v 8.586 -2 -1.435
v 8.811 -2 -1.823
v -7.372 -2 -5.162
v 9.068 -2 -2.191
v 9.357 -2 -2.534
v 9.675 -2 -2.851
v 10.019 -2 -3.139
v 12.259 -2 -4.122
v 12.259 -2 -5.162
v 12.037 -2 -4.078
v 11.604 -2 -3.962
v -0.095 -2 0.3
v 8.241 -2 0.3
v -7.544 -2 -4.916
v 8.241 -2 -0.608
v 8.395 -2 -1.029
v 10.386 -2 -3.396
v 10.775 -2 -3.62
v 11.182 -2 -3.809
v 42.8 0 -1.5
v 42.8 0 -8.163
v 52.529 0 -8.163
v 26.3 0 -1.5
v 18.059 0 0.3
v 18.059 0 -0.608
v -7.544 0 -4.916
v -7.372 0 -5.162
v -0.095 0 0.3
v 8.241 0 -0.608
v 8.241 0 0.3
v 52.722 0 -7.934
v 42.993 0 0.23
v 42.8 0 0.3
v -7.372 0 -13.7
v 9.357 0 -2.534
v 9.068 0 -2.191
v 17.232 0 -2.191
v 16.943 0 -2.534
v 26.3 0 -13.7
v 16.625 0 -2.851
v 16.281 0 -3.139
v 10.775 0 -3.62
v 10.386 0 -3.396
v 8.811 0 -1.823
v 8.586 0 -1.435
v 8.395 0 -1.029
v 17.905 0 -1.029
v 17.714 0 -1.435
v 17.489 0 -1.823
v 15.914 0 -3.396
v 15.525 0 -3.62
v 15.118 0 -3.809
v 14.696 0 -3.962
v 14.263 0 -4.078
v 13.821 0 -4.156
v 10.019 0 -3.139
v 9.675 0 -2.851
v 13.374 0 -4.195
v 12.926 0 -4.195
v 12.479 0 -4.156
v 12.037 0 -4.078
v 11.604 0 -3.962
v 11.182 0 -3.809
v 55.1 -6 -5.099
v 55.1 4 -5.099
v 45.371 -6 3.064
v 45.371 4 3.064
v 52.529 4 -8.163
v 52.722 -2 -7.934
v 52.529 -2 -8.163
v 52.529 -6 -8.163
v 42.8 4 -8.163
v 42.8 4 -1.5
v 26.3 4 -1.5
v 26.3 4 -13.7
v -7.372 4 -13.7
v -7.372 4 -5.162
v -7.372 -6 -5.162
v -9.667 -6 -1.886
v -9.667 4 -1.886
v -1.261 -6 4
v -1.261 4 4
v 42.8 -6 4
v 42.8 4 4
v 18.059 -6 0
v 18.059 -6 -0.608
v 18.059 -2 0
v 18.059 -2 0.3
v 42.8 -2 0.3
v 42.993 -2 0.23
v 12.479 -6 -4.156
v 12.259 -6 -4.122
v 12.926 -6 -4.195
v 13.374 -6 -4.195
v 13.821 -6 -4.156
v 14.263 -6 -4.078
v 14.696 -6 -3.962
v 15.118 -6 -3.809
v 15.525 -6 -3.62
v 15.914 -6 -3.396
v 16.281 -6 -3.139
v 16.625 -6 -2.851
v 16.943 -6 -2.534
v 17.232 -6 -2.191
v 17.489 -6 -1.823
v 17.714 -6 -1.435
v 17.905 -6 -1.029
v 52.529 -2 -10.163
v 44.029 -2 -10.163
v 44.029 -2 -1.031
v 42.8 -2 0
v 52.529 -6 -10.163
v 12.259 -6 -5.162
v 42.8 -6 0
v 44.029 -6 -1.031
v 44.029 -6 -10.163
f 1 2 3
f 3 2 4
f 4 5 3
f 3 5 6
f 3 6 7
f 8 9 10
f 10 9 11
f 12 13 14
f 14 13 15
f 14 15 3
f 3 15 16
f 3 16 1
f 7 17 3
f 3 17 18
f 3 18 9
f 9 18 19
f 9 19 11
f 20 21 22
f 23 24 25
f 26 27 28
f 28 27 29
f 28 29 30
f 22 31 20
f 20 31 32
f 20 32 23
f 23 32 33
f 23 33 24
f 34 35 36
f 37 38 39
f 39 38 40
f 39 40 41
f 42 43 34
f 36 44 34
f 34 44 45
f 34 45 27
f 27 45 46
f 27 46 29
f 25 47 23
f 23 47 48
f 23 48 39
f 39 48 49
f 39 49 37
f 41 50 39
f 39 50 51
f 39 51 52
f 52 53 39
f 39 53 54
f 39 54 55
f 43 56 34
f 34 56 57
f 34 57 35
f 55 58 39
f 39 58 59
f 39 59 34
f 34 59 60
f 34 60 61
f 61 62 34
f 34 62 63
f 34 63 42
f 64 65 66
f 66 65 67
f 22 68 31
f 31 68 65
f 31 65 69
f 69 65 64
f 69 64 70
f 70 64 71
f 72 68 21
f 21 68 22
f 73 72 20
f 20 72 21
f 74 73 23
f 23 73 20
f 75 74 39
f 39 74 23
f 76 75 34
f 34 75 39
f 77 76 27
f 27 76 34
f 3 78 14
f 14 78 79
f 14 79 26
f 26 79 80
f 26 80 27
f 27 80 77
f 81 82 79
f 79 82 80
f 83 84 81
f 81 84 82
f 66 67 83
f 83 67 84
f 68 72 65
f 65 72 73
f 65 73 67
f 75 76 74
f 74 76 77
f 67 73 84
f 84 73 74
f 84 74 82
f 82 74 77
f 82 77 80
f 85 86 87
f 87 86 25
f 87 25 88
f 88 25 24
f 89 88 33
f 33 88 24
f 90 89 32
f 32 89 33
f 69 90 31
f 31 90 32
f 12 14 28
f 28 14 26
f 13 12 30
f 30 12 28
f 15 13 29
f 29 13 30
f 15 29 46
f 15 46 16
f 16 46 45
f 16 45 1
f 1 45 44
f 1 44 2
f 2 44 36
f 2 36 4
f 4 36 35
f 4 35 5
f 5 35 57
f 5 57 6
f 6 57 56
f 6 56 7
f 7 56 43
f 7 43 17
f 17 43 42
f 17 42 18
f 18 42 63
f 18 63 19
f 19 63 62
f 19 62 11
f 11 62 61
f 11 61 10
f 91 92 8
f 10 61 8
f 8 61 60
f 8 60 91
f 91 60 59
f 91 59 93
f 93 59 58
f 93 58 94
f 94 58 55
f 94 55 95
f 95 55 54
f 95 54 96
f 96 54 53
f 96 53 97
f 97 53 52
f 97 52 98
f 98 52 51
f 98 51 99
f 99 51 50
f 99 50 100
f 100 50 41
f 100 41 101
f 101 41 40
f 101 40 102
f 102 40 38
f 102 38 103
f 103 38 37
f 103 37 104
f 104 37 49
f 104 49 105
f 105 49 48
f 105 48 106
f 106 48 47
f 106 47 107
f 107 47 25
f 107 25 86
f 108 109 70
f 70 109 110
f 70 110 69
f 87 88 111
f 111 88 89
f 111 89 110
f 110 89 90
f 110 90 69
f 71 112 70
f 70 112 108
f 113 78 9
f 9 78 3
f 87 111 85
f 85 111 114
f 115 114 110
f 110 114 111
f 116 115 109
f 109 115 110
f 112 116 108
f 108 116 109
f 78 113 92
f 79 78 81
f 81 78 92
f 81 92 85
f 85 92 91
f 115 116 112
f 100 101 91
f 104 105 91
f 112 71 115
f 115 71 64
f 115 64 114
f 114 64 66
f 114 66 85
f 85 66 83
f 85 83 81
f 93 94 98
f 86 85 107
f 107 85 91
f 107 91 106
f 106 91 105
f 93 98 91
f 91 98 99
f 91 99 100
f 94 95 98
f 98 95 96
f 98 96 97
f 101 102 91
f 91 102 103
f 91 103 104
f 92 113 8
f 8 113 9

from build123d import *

# Parameters (mm, degrees)
BOSS_EXTRUDE1_DEPTH = 4
BOSS_EXTRUDE3_DEPTH = 2
BOSS_EXTRUDE4_DEPTH = 4
CUT_EXTRUDE1_DEPTH  = 4
BOSS_EXTRUDE6_START = -4
BOSS_EXTRUDE6_DEPTH = 4


with BuildPart() as part:
    # Sketch2 → Boss-Extrude1 (new body)
    with BuildSketch(Plane(origin=(0, 0, 0), x_dir=(1, 0, 0), z_dir=(0, 1, 0))):
        Polygon((-7.372368399, 13.7), (-7.372368399, 5.162187927), (-9.666674144, 1.88557975), (-1.261195156, -4), (42.8, -4), (45.371150439, -3.064177772), (55.099914866, 5.099224871), (52.528764428, 8.163402643), (42.8, 8.163402643), (42.8, 1.5), (26.3, 1.5), (26.3, 13.7), align=None)
    extrude(amount=BOSS_EXTRUDE1_DEPTH)

    # Sketch2<4> → Boss-Extrude3 (add)
    with BuildSketch(Plane(origin=(0, 0, 0), x_dir=(1, 0, 0), z_dir=(0, 1, 0))):
        with BuildLine():
            Line((-0.094589637, -0.3), (-7.54444133, 4.916442314))
            Line((-7.54444133, 4.916442314), (-9.666674144, 1.88557975))
            Line((-9.666674144, 1.88557975), (-1.261195156, -4))
            Line((-1.261195156, -4), (42.8, -4))
            Line((42.8, -4), (45.371150439, -3.064177772))
            Line((45.371150439, -3.064177772), (55.099914866, 5.099224871))
            Line((55.099914866, 5.099224871), (52.721600711, 7.93358931))
            Line((52.721600711, 7.93358931), (42.992836283, -0.229813333))
            Line((42.992836283, -0.229813333), (42.8, -0.3))
            Line((42.8, -0.3), (18.05881591, -0.3))
            Line((18.05881591, -0.3), (18.05881591, 0.607570661))
            ThreePointArc((18.05881591, 0.607570661), (13.15, 4.2), (8.24118409, 0.607570661))
            Line((8.24118409, 0.607570661), (8.24118409, -0.3))
            Line((8.24118409, -0.3), (-0.094589637, -0.3))
        make_face()
    extrude(amount=-BOSS_EXTRUDE3_DEPTH)

    # Sketch3 → Boss-Extrude4 (add)
    with BuildSketch(Plane(origin=(0, -2, 0), x_dir=(-1, 0, 0), z_dir=(0, -1, 0))):
        Polygon((-42.8, 0), (-44.028764428, 1.031055778), (-44.028764428, 10.163402643), (-52.528764428, 10.163402643), (-52.528764428, 8.163402643), (-55.099914866, 5.099224871), (-45.371150439, -3.064177772), (-42.8, -4), (1.261195156, -4), (9.666674144, 1.88557975), (7.372368399, 5.162187927), (-18.25881591, 5.162187927), (-18.25881591, 0), align=None)
    extrude(amount=BOSS_EXTRUDE4_DEPTH)

    # Sketch4 → Cut-Extrude1 (cut)
    with BuildSketch(Plane(origin=(0, -6, 0), x_dir=(-1, 0, 0), z_dir=(0, -1, 0))):
        Polygon((-18.25881591, 0), (-12.25881591, 0), (-12.25881591, 5.162187927), (-18.25881591, 5.190707464), align=None)
    extrude(amount=-CUT_EXTRUDE1_DEPTH, mode=Mode.SUBTRACT)

    # Sketch5 → Boss-Extrude6 (add)
    with BuildSketch(Plane(origin=(0, -6, 0), x_dir=(-1, 0, 0), z_dir=(0, -1, 0)).offset(BOSS_EXTRUDE6_START)):
        with BuildLine():
            Line((-18.05881591, 0), (-18.05881591, 0.607570661))
            ThreePointArc((-18.05881591, 0.607570661), (-15.819022848, 3.454408818), (-12.25881591, 4.122306272))
            Line((-12.25881591, 4.122306272), (-12.25881591, 0))
            Line((-12.25881591, 0), (-18.05881591, 0))
        make_face()
    extrude(amount=BOSS_EXTRUDE6_DEPTH)


solid = part.part
